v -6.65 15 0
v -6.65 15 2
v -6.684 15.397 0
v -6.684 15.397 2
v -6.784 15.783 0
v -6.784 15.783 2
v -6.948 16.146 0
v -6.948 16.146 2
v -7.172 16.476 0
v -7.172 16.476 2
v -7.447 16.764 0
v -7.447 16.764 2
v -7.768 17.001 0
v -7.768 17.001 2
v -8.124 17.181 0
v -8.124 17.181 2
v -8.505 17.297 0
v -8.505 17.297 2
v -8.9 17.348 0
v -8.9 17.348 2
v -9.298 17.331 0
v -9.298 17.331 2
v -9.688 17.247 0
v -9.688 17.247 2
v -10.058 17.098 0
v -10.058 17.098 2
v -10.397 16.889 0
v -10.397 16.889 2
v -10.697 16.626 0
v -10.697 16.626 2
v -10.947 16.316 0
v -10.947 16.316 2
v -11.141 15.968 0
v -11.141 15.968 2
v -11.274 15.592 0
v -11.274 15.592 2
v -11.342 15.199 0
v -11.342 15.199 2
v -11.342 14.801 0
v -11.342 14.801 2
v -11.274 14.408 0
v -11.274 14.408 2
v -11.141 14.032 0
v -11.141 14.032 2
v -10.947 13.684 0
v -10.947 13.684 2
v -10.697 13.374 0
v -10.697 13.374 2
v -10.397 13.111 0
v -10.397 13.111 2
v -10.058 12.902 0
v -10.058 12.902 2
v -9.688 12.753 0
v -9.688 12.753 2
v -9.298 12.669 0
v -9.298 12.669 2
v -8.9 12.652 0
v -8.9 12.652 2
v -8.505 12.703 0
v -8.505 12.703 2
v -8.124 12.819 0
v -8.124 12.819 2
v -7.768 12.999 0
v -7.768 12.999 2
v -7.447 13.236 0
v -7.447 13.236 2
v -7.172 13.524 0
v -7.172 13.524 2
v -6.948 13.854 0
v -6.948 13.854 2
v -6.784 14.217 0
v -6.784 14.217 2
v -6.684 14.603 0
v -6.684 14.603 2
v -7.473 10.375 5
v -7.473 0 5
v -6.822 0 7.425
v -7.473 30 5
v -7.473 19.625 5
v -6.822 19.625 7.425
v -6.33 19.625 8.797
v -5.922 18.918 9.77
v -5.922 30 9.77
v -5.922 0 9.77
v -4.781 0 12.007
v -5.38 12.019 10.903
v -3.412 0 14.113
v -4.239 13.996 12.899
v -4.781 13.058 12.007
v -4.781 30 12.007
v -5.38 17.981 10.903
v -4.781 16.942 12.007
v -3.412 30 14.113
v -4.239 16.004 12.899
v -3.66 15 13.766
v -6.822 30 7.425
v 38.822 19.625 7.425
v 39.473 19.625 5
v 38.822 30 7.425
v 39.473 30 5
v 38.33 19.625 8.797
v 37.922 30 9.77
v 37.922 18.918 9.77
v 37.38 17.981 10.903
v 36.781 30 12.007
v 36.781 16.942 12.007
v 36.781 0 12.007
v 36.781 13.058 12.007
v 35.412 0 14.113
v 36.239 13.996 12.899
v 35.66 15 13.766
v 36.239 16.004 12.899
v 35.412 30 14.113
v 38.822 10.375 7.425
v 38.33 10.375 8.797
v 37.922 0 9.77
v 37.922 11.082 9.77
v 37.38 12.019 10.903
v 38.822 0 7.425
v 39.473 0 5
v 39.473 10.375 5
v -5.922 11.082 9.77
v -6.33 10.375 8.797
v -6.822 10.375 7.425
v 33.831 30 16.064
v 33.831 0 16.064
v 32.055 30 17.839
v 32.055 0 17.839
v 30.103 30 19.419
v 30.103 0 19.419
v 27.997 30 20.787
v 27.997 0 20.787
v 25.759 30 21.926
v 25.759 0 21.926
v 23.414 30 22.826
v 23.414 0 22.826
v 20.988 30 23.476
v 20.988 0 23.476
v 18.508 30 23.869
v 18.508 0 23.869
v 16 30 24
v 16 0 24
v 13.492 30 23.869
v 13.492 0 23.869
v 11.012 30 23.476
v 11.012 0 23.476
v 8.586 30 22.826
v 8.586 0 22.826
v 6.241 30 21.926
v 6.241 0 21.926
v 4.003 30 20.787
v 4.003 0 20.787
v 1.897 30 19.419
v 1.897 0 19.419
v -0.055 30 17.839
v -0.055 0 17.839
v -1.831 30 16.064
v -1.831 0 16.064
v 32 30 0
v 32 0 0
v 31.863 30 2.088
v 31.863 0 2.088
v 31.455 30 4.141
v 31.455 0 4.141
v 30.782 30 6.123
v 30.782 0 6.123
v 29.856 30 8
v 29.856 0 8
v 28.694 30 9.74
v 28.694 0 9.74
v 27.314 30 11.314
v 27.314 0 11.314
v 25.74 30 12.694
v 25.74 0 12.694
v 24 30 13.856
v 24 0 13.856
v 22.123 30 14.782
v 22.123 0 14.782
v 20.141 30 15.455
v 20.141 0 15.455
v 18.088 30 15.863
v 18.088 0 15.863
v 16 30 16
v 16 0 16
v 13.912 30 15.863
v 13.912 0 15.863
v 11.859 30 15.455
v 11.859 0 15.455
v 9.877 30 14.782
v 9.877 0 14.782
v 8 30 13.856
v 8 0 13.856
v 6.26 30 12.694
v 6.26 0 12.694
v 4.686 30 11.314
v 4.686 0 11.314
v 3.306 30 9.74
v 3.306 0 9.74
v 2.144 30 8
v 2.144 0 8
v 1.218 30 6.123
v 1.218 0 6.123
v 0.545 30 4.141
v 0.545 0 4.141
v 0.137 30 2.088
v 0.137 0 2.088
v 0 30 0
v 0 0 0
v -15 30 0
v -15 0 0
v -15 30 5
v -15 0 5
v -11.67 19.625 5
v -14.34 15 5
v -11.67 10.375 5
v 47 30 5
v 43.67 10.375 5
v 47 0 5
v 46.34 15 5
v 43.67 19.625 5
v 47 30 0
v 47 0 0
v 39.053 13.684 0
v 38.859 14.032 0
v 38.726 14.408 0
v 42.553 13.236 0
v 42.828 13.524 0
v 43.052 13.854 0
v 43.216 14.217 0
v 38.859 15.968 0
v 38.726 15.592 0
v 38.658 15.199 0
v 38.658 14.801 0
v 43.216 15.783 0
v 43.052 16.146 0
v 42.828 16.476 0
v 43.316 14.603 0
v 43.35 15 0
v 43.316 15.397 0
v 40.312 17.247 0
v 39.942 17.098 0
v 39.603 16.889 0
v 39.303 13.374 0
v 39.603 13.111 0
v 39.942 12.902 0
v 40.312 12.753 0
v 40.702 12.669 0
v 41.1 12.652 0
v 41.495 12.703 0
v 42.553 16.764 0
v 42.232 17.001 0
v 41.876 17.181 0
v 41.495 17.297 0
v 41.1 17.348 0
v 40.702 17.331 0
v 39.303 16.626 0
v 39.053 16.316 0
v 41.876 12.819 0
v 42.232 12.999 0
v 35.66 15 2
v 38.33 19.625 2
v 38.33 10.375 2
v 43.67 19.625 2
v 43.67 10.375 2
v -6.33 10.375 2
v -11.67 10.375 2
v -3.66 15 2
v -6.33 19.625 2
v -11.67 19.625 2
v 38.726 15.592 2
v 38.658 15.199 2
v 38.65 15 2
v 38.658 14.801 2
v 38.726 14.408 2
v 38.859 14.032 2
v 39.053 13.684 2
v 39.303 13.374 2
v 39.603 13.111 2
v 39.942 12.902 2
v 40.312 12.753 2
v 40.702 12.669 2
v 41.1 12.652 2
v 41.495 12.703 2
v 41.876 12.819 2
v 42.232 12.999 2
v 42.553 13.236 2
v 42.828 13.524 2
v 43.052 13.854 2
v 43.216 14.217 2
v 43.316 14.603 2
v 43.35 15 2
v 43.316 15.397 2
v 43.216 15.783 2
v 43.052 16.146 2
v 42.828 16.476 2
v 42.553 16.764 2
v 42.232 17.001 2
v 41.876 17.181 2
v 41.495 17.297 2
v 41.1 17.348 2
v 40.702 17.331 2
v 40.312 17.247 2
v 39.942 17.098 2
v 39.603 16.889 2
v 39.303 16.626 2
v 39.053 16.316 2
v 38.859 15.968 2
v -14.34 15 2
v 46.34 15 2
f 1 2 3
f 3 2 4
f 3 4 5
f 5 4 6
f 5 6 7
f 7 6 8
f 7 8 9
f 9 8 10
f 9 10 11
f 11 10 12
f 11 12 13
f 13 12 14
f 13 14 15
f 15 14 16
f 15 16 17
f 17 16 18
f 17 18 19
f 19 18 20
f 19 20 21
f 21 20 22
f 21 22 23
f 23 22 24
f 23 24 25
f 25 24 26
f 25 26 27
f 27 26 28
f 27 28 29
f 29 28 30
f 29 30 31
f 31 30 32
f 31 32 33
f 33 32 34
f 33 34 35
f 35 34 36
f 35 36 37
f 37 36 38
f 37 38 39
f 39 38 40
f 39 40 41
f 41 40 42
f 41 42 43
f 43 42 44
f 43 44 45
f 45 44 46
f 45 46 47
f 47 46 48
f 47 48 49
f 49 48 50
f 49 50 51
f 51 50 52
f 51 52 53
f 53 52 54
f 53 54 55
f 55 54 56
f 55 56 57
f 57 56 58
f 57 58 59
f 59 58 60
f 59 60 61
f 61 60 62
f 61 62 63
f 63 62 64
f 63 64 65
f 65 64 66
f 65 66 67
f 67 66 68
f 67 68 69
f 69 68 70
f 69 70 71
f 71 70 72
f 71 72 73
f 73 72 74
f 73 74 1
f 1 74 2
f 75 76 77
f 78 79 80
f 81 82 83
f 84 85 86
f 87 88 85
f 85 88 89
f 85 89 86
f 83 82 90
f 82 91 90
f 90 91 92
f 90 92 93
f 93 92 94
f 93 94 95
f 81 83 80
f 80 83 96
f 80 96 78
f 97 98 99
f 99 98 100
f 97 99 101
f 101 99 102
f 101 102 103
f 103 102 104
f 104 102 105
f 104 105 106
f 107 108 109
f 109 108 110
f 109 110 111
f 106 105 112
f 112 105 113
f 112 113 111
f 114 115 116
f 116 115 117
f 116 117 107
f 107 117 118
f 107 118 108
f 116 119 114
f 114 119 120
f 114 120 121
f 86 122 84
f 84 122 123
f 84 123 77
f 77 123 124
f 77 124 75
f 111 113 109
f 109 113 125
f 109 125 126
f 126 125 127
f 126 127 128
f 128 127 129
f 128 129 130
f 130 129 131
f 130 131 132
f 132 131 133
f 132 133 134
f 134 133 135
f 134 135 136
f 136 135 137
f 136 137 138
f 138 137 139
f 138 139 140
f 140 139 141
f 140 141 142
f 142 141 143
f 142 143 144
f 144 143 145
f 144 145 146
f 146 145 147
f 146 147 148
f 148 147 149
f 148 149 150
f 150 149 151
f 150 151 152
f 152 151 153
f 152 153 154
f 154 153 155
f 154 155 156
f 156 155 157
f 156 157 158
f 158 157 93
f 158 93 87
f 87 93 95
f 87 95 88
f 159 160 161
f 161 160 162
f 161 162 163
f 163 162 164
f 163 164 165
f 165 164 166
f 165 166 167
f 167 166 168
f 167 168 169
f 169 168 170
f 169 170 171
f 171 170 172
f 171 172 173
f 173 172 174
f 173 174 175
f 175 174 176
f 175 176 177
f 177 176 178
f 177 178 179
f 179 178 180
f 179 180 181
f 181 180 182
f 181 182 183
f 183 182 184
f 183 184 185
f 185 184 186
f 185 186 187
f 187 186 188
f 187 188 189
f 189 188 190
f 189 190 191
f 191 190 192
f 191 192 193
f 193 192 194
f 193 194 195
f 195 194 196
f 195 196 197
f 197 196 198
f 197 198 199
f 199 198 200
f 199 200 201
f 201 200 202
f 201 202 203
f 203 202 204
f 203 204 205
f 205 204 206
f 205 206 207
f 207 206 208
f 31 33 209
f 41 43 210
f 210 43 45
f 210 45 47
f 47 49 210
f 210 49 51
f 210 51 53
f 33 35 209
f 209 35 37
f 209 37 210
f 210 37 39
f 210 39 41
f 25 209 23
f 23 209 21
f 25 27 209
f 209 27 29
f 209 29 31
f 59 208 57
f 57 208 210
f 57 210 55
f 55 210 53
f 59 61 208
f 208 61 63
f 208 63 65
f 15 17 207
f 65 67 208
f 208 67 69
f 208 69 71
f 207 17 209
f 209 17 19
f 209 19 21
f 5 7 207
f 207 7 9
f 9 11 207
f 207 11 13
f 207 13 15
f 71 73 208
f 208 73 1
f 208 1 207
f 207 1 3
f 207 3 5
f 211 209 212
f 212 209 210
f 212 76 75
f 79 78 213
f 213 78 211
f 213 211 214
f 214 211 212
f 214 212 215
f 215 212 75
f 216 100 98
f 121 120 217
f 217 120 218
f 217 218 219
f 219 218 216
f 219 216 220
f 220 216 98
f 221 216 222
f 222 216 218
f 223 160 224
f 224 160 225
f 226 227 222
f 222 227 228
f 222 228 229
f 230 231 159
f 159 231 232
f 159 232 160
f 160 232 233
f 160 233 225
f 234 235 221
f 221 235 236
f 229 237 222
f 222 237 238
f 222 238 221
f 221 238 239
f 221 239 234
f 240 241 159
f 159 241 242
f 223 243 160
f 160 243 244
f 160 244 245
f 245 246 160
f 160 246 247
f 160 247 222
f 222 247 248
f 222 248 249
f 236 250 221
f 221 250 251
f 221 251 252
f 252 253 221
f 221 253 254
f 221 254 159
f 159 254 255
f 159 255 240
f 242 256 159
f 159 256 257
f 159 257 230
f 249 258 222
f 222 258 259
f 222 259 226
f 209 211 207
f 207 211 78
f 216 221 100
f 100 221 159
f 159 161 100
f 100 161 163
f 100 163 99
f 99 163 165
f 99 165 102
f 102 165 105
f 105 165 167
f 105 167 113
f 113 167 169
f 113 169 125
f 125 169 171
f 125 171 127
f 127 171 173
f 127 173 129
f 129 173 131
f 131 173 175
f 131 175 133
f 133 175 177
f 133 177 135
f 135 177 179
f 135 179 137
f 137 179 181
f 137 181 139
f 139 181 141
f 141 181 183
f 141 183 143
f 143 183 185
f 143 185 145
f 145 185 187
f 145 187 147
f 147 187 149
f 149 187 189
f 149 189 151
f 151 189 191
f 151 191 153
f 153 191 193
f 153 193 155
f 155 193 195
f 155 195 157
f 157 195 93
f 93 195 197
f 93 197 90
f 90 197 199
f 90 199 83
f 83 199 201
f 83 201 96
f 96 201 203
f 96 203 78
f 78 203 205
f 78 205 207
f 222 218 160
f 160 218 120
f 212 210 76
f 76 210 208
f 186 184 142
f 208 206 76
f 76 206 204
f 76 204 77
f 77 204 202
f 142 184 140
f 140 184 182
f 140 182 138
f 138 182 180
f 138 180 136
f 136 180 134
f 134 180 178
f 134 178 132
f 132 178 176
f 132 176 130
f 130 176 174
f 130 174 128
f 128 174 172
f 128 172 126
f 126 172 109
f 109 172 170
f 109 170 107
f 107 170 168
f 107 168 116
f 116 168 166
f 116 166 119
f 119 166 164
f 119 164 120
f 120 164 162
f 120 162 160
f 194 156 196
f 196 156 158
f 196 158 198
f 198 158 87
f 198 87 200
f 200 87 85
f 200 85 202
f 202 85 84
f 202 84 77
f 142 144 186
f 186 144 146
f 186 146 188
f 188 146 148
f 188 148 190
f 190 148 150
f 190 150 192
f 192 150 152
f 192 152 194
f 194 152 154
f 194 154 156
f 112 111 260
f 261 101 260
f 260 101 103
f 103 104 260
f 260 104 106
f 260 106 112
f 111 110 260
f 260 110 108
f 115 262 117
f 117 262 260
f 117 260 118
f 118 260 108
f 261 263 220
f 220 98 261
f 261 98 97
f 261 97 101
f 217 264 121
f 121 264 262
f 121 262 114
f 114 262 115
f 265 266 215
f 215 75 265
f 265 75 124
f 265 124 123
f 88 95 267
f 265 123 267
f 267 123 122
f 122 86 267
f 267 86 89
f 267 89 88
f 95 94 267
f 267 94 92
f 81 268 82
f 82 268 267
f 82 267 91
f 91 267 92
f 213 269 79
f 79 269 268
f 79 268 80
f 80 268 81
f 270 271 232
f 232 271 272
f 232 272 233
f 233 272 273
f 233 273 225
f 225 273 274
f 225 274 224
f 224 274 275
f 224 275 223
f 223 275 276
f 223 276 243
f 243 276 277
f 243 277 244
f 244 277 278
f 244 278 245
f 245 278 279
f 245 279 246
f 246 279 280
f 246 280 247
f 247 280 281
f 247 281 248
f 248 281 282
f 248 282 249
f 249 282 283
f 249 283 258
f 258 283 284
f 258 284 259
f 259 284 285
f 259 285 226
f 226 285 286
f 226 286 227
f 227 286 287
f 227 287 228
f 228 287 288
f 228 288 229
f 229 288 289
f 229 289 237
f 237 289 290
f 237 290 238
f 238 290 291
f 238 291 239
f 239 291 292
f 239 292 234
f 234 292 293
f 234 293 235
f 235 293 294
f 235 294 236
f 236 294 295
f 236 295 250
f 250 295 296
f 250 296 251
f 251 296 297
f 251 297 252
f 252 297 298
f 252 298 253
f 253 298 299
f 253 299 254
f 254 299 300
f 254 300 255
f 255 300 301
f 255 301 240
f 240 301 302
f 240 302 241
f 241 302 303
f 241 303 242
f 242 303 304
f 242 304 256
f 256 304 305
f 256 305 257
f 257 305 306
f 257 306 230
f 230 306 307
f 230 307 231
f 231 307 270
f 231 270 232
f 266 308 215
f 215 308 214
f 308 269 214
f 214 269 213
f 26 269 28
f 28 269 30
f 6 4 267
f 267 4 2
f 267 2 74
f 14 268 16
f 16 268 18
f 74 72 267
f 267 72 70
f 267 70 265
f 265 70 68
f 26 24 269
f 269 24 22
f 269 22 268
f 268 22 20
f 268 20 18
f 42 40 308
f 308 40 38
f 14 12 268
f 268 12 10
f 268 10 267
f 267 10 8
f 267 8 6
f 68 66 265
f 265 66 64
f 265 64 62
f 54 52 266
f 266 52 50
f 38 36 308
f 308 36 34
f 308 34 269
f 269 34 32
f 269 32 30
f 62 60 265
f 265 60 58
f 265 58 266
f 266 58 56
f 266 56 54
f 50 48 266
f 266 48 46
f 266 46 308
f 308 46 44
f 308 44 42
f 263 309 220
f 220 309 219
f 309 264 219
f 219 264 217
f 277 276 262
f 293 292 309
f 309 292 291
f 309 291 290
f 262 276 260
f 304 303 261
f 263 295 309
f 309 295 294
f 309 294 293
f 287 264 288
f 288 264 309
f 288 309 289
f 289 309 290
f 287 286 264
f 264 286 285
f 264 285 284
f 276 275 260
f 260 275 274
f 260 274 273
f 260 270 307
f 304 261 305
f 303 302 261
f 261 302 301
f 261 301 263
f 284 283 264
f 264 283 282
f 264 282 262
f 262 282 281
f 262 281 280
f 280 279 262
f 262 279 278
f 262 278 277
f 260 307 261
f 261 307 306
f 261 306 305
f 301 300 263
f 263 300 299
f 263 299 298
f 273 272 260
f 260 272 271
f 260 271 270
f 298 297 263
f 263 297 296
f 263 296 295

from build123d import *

# Parameters (mm, degrees)
BOSS_EXTRUDE1_DEPTH   = 30
CUT_EXTRUDE1_DEPTH    = 50
SKETCH2_7_R           = 2.35
CUT_EXTRUDE5_DEPTH    = 5
SKETCH2_10_R          = 2.35
CUT_EXTRUDE8_DEPTH    = 3
BODY_MOVE_COPY1_ANGLE = 90


with BuildPart() as part:
    # Sketch1 → Boss-Extrude1 (new body)
    with BuildSketch(Plane(origin=(0, 0, 0), x_dir=(1, 0, 0), z_dir=(0, 1, 0))):
        with BuildLine():
            Line((0, -16), (0, -31))
            Line((0, -31), (-5, -31))
            Line((-5, -31), (-5, -23.473389189))
            ThreePointArc((-5, -23.473389189), (-24, 0), (-5, 23.473389189))
            Line((-5, 23.473389189), (-5, 31))
            Line((-5, 31), (0, 31))
            Line((0, 31), (0, 16))
            ThreePointArc((0, 16), (-16, 0), (0, -16))
        make_face()
    extrude(amount=BOSS_EXTRUDE1_DEPTH)

    # Sketch2 → Cut-Extrude1 (cut)
    with BuildSketch(Plane.ZY.offset(5)):
        Polygon((-23.473389189, 10.375), (-22.329755005, 10.375), (-19.65951001, 15), (-22.329755005, 19.625), (-23.473389189, 19.625), align=None)
        Polygon((23.473389189, 19.625), (22.329755005, 19.625), (19.65951001, 15), (22.329755005, 10.375), (23.473389189, 10.375), align=None)
    extrude(amount=CUT_EXTRUDE1_DEPTH, mode=Mode.SUBTRACT)

    # Sketch2<7> → Cut-Extrude5 (cut)
    with BuildSketch(Plane.ZY.offset(5)):
        with Locations((-25, 15)):
            Circle(SKETCH2_7_R)
        with Locations((25, 15)):
            Circle(SKETCH2_7_R)
    extrude(amount=-CUT_EXTRUDE5_DEPTH, mode=Mode.SUBTRACT)

    # Sketch2<10> → Cut-Extrude8 (cut)
    # profile 1 of 2: a face of its own
    with BuildSketch(Plane.ZY.offset(5)):
        Polygon((-22.329755005, 10.375), (-19.65951001, 15), (-22.329755005, 19.625), (-27.670244995, 19.625), (-30.34048999, 15), (-27.670244995, 10.375), align=None)
        with Locations((-25, 15)):
            Circle(SKETCH2_10_R, mode=Mode.SUBTRACT)
    # profile 2 of 2: a face of its own
    with BuildSketch(Plane.ZY.offset(5)):
        Polygon((27.670244995, 19.625), (30.34048999, 15), (27.670244995, 10.375), (22.329755005, 10.375), (19.65951001, 15), (22.329755005, 19.625), align=None)
        with Locations((25, 15)):
            Circle(SKETCH2_10_R, mode=Mode.SUBTRACT)
    extrude(amount=-CUT_EXTRUDE8_DEPTH, mode=Mode.SUBTRACT)


with BuildPart() as part_1:
    # Body-Move/Copy1: read off the stored shape, not the designer's step
    # Body-Move/Copy1: moved
    add(part.part.moved(Location((0, 0, 16))).rotate(Axis((0, 0, 0), (0, 1, 0)), BODY_MOVE_COPY1_ANGLE))


solid = part_1.part
